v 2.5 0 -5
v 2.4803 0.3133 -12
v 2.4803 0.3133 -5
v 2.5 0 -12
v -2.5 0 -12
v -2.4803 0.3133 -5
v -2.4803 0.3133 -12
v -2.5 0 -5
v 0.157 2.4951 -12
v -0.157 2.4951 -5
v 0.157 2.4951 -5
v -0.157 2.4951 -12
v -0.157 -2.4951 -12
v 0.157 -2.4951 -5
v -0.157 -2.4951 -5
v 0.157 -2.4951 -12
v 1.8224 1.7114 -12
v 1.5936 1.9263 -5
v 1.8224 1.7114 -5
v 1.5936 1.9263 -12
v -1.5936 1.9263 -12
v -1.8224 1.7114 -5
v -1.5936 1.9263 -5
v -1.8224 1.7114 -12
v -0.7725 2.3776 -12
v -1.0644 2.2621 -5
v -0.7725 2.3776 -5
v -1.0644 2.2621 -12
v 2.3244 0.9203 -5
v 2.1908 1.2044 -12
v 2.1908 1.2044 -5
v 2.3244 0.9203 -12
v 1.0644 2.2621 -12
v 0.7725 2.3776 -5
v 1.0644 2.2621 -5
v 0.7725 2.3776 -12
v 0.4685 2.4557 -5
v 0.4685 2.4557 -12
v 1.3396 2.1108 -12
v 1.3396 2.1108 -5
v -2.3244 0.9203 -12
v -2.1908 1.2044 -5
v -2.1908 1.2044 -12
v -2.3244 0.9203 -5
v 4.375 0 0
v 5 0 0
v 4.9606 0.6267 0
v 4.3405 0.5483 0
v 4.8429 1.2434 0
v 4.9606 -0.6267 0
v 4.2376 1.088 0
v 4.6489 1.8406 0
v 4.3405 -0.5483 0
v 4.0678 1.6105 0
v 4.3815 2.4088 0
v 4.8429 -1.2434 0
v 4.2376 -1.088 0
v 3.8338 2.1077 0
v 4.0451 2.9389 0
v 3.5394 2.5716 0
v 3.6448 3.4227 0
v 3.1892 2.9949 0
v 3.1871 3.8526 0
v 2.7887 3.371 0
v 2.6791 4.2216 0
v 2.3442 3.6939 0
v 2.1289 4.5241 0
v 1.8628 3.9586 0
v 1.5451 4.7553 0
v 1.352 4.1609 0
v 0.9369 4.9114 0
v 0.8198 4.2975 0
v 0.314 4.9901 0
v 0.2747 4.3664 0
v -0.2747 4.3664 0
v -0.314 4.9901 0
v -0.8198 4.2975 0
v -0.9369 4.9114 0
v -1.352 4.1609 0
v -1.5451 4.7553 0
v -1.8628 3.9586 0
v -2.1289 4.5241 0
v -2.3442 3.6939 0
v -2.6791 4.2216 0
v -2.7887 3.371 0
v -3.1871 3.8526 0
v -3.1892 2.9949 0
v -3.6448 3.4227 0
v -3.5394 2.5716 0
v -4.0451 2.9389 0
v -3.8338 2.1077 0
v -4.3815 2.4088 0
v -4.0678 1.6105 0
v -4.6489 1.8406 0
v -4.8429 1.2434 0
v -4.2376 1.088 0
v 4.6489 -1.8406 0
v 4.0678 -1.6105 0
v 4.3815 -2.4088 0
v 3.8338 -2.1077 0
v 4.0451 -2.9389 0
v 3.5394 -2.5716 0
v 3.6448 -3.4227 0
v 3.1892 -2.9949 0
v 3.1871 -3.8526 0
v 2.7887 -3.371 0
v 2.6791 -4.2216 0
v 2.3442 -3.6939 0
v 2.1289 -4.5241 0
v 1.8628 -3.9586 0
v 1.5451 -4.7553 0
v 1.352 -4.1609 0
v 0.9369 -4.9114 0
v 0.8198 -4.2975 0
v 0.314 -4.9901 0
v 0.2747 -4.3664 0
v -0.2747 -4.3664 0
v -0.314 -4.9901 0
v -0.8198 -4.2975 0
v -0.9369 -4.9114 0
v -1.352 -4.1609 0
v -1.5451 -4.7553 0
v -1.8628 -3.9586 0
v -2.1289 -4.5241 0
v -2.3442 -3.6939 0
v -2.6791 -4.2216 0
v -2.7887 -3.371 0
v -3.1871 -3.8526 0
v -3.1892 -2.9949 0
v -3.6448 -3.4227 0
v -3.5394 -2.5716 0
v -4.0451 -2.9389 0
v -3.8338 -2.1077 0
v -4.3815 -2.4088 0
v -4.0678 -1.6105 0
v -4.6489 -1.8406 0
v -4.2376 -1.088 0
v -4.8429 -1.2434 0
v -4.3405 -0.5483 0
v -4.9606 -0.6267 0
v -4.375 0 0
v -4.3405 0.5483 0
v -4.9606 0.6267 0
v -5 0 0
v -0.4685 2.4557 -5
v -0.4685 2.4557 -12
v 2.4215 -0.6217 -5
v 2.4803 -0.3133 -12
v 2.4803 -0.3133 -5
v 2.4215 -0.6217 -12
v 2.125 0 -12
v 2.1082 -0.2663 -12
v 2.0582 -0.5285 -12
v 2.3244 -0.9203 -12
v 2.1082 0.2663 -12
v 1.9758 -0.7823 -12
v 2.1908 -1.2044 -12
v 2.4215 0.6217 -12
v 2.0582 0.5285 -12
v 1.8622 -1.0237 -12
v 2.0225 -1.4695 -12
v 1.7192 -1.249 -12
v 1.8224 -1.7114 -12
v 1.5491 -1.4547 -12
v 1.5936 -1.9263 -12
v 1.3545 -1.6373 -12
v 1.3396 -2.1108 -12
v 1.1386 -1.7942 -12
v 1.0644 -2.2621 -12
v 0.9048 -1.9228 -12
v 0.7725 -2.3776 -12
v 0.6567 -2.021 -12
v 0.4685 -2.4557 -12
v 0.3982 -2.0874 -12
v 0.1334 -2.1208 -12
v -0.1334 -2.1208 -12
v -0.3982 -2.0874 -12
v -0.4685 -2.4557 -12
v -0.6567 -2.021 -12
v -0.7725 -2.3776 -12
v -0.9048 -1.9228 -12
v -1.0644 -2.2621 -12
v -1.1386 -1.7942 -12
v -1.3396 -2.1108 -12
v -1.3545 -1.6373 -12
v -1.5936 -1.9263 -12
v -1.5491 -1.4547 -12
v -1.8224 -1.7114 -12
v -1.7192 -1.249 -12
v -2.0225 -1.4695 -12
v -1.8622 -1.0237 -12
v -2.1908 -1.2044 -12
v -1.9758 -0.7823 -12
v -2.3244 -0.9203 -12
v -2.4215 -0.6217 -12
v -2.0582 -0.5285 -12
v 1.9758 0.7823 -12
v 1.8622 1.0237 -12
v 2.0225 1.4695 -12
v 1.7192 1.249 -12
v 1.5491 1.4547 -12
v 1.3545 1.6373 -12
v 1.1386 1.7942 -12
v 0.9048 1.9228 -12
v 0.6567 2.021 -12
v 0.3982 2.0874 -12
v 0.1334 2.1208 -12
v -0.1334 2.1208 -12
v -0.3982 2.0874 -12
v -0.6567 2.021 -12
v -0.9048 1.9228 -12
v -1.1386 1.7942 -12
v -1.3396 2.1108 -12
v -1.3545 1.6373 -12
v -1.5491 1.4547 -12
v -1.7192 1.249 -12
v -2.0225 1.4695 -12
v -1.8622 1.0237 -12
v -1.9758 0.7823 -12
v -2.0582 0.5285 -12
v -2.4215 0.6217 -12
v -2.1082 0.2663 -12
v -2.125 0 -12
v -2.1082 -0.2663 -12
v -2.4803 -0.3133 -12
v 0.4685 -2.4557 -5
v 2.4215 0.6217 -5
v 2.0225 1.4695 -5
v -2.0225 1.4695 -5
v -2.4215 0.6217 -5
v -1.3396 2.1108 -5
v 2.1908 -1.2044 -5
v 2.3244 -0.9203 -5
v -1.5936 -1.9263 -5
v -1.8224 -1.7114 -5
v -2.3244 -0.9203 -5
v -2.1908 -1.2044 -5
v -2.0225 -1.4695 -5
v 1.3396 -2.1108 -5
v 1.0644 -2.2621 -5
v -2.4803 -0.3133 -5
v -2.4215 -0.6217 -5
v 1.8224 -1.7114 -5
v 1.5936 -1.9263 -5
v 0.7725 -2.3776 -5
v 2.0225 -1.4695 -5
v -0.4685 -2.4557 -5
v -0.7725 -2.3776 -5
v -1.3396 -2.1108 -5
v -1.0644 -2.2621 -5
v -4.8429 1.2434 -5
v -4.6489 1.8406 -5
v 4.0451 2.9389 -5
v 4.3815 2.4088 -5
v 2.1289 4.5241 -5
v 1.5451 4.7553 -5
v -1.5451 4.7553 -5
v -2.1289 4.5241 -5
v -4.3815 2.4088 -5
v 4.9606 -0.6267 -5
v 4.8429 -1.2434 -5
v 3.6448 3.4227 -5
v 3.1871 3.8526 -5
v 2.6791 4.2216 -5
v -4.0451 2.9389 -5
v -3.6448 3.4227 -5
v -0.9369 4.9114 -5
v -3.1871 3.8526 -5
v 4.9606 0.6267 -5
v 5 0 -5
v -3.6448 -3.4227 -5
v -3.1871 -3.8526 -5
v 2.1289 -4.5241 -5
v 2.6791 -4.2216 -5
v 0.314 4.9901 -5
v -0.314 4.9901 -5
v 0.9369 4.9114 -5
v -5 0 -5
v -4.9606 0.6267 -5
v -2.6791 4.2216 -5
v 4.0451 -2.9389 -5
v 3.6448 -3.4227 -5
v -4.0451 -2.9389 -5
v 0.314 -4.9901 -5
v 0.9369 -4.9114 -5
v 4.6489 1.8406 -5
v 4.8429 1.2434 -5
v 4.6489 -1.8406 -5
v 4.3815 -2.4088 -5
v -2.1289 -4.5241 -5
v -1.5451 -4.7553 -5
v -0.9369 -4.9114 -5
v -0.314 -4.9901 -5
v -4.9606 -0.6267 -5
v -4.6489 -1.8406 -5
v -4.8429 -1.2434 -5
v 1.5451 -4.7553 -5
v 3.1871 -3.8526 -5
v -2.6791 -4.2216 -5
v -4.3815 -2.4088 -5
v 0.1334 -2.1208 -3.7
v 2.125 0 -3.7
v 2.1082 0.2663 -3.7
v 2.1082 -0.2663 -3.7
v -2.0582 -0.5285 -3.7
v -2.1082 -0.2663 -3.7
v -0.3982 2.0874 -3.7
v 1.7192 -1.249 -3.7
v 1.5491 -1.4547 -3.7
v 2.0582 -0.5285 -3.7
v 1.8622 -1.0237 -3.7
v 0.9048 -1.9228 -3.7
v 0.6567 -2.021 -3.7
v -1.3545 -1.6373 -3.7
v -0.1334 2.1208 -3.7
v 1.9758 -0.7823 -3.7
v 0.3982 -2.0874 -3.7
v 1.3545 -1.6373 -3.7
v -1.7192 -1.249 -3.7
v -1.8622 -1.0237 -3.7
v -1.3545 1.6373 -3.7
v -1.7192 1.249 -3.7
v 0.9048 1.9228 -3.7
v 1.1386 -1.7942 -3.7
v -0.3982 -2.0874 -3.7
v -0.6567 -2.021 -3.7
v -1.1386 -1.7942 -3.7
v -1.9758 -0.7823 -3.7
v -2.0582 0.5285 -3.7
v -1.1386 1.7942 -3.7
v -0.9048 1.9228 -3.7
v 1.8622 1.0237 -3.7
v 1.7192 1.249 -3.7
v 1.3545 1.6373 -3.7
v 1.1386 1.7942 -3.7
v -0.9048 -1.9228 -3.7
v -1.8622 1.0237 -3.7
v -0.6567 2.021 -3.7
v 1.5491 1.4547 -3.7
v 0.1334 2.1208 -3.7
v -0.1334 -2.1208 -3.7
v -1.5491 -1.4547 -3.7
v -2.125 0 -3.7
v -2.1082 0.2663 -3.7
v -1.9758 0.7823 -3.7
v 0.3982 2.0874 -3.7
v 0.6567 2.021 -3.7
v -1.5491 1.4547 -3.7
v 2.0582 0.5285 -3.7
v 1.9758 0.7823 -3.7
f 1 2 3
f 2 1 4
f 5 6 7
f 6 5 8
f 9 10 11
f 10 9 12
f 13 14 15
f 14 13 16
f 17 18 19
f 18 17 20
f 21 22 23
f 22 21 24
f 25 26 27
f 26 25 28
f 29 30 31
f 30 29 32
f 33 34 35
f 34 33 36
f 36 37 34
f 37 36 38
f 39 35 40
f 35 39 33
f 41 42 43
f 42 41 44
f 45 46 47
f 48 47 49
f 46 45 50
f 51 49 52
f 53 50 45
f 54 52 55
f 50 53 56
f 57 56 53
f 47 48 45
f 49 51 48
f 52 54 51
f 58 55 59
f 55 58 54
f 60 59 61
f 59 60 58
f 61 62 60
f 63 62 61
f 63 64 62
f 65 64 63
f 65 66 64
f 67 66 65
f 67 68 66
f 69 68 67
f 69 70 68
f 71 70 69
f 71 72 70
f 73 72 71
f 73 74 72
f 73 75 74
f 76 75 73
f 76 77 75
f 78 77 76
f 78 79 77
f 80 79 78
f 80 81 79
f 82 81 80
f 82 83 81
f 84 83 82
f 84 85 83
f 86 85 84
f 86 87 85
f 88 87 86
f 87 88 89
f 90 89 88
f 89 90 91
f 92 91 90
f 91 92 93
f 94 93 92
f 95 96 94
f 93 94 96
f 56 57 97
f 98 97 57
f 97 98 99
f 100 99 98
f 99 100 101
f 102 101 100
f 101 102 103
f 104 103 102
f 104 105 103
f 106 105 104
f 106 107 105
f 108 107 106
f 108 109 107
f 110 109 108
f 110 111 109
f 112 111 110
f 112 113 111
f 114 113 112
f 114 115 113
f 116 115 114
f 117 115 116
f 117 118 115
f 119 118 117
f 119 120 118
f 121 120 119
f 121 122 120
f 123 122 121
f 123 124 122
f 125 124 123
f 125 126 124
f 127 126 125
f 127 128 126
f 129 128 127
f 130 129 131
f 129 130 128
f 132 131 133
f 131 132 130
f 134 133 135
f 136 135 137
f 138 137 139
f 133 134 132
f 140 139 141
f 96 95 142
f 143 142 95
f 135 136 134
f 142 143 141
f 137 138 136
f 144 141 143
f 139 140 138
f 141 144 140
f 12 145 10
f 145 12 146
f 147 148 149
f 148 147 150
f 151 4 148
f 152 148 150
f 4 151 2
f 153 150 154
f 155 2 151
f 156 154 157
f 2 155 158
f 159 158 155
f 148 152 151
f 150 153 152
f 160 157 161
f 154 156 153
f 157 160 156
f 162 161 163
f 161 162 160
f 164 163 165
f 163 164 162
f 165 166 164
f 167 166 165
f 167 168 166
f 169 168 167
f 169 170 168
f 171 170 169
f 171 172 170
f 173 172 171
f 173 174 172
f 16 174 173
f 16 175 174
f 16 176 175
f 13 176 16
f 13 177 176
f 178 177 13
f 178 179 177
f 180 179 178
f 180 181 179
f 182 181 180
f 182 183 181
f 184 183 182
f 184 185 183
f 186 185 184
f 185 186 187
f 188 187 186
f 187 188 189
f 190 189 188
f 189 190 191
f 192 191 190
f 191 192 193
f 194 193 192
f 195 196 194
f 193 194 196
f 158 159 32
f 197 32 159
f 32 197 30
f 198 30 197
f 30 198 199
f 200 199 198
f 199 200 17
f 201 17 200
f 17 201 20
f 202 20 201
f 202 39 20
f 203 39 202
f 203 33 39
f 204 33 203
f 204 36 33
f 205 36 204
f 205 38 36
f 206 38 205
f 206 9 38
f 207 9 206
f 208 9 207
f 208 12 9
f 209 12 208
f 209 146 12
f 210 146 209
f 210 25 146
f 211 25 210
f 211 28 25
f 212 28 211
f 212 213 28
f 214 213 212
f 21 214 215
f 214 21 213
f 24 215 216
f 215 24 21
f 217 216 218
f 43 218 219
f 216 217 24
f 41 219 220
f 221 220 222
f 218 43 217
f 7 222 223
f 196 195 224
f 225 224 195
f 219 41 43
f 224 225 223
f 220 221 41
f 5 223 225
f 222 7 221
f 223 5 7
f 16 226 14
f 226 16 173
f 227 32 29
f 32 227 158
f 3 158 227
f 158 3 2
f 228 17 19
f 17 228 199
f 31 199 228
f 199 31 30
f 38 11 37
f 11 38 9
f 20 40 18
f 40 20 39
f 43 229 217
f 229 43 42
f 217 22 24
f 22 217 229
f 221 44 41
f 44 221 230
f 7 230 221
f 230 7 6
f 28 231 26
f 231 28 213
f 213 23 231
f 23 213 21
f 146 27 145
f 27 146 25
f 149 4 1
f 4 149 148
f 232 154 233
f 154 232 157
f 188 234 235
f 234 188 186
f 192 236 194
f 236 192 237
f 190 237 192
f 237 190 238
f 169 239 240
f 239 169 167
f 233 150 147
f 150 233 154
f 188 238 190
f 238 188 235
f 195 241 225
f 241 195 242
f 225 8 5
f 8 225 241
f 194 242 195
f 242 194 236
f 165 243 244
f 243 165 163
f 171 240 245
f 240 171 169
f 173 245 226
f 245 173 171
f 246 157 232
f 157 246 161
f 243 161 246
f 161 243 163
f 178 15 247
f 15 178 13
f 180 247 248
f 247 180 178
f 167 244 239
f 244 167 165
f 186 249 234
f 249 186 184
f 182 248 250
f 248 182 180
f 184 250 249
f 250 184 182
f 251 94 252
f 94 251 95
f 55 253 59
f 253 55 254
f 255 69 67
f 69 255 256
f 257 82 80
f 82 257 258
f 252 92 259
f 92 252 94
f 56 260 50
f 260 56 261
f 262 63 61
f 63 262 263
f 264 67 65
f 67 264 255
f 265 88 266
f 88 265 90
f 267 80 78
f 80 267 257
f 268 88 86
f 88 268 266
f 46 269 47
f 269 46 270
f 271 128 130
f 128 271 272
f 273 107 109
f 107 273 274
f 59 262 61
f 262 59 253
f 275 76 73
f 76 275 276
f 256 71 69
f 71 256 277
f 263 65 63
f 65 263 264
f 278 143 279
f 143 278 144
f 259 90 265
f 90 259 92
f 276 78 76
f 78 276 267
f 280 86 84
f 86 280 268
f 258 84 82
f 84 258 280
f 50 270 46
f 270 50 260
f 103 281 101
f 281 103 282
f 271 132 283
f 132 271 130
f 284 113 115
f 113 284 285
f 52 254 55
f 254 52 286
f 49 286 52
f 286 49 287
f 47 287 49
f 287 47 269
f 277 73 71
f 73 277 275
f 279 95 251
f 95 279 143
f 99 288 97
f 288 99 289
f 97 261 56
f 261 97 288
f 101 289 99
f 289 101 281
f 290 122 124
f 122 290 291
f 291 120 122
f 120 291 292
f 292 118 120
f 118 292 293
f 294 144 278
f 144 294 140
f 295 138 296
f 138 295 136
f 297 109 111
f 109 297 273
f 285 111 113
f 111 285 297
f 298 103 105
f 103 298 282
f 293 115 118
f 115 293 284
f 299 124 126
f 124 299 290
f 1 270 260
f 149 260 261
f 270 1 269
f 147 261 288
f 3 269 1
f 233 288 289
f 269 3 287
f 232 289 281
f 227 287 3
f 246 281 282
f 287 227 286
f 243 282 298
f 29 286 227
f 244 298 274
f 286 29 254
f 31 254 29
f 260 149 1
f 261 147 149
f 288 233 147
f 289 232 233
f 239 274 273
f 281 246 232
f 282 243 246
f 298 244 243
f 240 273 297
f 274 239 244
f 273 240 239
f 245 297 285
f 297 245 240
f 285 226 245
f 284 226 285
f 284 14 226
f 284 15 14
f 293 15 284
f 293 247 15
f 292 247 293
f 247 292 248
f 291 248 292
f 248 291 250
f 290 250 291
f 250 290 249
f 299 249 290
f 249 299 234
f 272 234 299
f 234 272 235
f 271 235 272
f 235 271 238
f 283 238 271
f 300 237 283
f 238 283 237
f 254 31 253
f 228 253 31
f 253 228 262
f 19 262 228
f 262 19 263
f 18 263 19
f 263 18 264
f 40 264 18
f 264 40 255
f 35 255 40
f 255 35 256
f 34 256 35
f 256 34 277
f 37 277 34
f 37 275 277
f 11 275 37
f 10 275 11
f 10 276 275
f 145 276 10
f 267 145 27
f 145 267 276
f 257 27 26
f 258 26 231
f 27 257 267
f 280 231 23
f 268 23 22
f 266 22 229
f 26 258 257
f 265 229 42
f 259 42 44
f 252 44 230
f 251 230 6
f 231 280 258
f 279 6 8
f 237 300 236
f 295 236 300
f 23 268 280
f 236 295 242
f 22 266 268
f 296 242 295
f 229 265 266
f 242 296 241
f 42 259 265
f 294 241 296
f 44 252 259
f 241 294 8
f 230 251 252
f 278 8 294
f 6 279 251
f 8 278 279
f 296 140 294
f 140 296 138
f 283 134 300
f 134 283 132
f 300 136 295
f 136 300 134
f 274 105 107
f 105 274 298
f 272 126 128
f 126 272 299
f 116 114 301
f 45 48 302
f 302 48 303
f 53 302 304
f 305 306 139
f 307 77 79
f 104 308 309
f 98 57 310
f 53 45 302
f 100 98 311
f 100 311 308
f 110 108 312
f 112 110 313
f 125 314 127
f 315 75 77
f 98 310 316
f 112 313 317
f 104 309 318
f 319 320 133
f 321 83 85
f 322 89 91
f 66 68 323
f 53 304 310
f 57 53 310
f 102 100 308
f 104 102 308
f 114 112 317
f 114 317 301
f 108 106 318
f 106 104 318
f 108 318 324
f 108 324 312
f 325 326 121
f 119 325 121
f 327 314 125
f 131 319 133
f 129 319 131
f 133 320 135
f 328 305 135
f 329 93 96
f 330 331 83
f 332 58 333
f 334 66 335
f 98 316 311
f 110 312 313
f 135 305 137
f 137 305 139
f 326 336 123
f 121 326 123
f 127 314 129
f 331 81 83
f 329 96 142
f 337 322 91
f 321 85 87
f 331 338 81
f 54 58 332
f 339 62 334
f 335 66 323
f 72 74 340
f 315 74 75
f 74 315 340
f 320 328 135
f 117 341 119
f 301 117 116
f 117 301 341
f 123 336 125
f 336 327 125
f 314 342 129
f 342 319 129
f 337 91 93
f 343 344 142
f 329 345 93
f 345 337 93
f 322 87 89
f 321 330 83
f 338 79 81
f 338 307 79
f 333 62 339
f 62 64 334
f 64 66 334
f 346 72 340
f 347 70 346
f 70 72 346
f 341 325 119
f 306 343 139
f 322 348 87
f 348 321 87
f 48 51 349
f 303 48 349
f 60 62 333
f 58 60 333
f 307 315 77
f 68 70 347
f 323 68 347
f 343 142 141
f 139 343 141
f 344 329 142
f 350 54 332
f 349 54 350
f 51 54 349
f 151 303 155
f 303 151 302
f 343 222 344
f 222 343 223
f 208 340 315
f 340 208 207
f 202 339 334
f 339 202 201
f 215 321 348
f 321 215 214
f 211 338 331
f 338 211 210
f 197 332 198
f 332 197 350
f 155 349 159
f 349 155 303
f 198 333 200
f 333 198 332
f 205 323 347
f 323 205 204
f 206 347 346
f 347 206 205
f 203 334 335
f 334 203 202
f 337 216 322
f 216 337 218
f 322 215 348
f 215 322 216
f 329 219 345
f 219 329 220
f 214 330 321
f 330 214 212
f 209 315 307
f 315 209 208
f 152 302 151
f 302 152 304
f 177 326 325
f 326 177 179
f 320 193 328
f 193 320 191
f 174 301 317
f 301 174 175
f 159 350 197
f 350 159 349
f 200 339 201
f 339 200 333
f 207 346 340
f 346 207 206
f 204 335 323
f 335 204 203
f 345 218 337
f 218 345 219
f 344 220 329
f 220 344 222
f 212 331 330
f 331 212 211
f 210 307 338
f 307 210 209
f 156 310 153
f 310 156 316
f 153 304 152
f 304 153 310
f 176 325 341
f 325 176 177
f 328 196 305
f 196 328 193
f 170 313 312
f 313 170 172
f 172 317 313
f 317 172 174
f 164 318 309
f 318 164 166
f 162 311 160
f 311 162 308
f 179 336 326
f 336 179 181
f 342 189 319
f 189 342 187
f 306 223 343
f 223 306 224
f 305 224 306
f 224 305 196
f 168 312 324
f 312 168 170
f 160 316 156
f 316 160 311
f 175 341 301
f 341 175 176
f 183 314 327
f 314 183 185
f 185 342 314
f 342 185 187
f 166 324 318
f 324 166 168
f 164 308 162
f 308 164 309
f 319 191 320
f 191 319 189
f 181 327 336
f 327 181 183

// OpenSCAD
$fn = 50;


difference() {
	union() {
		translate(v = [0, 0, -12.0000000000]) {
			cylinder(h = 12, r = 2.5000000000);
		}
		translate(v = [0, 0, -5.0000000000]) {
			cylinder(h = 5, r = 5.0000000000);
		}
	}
	union() {
		translate(v = [0, 0, 0]) {
			rotate(a = [0, 0, 0]) {
				difference() {
					union() {
						#translate(v = [0, 0, -12.0000000000]) {
							cylinder(h = 12, r = 2.0000000000);
						}
						#translate(v = [0, 0, -3.7000000000]) {
							cylinder(h = 3.7000000000, r = 2.5000000000, r1 = 2.1250000000, r2 = 4.3750000000);
						}
						#translate(v = [0, 0, -12.0000000000]) {
							cylinder(h = 12, r = 2.1250000000);
						}
						#translate(v = [0, 0, -12.0000000000]) {
							cylinder(h = 12, r = 2.0000000000);
						}
					}
					union();
				}
			}
		}
	}
}
